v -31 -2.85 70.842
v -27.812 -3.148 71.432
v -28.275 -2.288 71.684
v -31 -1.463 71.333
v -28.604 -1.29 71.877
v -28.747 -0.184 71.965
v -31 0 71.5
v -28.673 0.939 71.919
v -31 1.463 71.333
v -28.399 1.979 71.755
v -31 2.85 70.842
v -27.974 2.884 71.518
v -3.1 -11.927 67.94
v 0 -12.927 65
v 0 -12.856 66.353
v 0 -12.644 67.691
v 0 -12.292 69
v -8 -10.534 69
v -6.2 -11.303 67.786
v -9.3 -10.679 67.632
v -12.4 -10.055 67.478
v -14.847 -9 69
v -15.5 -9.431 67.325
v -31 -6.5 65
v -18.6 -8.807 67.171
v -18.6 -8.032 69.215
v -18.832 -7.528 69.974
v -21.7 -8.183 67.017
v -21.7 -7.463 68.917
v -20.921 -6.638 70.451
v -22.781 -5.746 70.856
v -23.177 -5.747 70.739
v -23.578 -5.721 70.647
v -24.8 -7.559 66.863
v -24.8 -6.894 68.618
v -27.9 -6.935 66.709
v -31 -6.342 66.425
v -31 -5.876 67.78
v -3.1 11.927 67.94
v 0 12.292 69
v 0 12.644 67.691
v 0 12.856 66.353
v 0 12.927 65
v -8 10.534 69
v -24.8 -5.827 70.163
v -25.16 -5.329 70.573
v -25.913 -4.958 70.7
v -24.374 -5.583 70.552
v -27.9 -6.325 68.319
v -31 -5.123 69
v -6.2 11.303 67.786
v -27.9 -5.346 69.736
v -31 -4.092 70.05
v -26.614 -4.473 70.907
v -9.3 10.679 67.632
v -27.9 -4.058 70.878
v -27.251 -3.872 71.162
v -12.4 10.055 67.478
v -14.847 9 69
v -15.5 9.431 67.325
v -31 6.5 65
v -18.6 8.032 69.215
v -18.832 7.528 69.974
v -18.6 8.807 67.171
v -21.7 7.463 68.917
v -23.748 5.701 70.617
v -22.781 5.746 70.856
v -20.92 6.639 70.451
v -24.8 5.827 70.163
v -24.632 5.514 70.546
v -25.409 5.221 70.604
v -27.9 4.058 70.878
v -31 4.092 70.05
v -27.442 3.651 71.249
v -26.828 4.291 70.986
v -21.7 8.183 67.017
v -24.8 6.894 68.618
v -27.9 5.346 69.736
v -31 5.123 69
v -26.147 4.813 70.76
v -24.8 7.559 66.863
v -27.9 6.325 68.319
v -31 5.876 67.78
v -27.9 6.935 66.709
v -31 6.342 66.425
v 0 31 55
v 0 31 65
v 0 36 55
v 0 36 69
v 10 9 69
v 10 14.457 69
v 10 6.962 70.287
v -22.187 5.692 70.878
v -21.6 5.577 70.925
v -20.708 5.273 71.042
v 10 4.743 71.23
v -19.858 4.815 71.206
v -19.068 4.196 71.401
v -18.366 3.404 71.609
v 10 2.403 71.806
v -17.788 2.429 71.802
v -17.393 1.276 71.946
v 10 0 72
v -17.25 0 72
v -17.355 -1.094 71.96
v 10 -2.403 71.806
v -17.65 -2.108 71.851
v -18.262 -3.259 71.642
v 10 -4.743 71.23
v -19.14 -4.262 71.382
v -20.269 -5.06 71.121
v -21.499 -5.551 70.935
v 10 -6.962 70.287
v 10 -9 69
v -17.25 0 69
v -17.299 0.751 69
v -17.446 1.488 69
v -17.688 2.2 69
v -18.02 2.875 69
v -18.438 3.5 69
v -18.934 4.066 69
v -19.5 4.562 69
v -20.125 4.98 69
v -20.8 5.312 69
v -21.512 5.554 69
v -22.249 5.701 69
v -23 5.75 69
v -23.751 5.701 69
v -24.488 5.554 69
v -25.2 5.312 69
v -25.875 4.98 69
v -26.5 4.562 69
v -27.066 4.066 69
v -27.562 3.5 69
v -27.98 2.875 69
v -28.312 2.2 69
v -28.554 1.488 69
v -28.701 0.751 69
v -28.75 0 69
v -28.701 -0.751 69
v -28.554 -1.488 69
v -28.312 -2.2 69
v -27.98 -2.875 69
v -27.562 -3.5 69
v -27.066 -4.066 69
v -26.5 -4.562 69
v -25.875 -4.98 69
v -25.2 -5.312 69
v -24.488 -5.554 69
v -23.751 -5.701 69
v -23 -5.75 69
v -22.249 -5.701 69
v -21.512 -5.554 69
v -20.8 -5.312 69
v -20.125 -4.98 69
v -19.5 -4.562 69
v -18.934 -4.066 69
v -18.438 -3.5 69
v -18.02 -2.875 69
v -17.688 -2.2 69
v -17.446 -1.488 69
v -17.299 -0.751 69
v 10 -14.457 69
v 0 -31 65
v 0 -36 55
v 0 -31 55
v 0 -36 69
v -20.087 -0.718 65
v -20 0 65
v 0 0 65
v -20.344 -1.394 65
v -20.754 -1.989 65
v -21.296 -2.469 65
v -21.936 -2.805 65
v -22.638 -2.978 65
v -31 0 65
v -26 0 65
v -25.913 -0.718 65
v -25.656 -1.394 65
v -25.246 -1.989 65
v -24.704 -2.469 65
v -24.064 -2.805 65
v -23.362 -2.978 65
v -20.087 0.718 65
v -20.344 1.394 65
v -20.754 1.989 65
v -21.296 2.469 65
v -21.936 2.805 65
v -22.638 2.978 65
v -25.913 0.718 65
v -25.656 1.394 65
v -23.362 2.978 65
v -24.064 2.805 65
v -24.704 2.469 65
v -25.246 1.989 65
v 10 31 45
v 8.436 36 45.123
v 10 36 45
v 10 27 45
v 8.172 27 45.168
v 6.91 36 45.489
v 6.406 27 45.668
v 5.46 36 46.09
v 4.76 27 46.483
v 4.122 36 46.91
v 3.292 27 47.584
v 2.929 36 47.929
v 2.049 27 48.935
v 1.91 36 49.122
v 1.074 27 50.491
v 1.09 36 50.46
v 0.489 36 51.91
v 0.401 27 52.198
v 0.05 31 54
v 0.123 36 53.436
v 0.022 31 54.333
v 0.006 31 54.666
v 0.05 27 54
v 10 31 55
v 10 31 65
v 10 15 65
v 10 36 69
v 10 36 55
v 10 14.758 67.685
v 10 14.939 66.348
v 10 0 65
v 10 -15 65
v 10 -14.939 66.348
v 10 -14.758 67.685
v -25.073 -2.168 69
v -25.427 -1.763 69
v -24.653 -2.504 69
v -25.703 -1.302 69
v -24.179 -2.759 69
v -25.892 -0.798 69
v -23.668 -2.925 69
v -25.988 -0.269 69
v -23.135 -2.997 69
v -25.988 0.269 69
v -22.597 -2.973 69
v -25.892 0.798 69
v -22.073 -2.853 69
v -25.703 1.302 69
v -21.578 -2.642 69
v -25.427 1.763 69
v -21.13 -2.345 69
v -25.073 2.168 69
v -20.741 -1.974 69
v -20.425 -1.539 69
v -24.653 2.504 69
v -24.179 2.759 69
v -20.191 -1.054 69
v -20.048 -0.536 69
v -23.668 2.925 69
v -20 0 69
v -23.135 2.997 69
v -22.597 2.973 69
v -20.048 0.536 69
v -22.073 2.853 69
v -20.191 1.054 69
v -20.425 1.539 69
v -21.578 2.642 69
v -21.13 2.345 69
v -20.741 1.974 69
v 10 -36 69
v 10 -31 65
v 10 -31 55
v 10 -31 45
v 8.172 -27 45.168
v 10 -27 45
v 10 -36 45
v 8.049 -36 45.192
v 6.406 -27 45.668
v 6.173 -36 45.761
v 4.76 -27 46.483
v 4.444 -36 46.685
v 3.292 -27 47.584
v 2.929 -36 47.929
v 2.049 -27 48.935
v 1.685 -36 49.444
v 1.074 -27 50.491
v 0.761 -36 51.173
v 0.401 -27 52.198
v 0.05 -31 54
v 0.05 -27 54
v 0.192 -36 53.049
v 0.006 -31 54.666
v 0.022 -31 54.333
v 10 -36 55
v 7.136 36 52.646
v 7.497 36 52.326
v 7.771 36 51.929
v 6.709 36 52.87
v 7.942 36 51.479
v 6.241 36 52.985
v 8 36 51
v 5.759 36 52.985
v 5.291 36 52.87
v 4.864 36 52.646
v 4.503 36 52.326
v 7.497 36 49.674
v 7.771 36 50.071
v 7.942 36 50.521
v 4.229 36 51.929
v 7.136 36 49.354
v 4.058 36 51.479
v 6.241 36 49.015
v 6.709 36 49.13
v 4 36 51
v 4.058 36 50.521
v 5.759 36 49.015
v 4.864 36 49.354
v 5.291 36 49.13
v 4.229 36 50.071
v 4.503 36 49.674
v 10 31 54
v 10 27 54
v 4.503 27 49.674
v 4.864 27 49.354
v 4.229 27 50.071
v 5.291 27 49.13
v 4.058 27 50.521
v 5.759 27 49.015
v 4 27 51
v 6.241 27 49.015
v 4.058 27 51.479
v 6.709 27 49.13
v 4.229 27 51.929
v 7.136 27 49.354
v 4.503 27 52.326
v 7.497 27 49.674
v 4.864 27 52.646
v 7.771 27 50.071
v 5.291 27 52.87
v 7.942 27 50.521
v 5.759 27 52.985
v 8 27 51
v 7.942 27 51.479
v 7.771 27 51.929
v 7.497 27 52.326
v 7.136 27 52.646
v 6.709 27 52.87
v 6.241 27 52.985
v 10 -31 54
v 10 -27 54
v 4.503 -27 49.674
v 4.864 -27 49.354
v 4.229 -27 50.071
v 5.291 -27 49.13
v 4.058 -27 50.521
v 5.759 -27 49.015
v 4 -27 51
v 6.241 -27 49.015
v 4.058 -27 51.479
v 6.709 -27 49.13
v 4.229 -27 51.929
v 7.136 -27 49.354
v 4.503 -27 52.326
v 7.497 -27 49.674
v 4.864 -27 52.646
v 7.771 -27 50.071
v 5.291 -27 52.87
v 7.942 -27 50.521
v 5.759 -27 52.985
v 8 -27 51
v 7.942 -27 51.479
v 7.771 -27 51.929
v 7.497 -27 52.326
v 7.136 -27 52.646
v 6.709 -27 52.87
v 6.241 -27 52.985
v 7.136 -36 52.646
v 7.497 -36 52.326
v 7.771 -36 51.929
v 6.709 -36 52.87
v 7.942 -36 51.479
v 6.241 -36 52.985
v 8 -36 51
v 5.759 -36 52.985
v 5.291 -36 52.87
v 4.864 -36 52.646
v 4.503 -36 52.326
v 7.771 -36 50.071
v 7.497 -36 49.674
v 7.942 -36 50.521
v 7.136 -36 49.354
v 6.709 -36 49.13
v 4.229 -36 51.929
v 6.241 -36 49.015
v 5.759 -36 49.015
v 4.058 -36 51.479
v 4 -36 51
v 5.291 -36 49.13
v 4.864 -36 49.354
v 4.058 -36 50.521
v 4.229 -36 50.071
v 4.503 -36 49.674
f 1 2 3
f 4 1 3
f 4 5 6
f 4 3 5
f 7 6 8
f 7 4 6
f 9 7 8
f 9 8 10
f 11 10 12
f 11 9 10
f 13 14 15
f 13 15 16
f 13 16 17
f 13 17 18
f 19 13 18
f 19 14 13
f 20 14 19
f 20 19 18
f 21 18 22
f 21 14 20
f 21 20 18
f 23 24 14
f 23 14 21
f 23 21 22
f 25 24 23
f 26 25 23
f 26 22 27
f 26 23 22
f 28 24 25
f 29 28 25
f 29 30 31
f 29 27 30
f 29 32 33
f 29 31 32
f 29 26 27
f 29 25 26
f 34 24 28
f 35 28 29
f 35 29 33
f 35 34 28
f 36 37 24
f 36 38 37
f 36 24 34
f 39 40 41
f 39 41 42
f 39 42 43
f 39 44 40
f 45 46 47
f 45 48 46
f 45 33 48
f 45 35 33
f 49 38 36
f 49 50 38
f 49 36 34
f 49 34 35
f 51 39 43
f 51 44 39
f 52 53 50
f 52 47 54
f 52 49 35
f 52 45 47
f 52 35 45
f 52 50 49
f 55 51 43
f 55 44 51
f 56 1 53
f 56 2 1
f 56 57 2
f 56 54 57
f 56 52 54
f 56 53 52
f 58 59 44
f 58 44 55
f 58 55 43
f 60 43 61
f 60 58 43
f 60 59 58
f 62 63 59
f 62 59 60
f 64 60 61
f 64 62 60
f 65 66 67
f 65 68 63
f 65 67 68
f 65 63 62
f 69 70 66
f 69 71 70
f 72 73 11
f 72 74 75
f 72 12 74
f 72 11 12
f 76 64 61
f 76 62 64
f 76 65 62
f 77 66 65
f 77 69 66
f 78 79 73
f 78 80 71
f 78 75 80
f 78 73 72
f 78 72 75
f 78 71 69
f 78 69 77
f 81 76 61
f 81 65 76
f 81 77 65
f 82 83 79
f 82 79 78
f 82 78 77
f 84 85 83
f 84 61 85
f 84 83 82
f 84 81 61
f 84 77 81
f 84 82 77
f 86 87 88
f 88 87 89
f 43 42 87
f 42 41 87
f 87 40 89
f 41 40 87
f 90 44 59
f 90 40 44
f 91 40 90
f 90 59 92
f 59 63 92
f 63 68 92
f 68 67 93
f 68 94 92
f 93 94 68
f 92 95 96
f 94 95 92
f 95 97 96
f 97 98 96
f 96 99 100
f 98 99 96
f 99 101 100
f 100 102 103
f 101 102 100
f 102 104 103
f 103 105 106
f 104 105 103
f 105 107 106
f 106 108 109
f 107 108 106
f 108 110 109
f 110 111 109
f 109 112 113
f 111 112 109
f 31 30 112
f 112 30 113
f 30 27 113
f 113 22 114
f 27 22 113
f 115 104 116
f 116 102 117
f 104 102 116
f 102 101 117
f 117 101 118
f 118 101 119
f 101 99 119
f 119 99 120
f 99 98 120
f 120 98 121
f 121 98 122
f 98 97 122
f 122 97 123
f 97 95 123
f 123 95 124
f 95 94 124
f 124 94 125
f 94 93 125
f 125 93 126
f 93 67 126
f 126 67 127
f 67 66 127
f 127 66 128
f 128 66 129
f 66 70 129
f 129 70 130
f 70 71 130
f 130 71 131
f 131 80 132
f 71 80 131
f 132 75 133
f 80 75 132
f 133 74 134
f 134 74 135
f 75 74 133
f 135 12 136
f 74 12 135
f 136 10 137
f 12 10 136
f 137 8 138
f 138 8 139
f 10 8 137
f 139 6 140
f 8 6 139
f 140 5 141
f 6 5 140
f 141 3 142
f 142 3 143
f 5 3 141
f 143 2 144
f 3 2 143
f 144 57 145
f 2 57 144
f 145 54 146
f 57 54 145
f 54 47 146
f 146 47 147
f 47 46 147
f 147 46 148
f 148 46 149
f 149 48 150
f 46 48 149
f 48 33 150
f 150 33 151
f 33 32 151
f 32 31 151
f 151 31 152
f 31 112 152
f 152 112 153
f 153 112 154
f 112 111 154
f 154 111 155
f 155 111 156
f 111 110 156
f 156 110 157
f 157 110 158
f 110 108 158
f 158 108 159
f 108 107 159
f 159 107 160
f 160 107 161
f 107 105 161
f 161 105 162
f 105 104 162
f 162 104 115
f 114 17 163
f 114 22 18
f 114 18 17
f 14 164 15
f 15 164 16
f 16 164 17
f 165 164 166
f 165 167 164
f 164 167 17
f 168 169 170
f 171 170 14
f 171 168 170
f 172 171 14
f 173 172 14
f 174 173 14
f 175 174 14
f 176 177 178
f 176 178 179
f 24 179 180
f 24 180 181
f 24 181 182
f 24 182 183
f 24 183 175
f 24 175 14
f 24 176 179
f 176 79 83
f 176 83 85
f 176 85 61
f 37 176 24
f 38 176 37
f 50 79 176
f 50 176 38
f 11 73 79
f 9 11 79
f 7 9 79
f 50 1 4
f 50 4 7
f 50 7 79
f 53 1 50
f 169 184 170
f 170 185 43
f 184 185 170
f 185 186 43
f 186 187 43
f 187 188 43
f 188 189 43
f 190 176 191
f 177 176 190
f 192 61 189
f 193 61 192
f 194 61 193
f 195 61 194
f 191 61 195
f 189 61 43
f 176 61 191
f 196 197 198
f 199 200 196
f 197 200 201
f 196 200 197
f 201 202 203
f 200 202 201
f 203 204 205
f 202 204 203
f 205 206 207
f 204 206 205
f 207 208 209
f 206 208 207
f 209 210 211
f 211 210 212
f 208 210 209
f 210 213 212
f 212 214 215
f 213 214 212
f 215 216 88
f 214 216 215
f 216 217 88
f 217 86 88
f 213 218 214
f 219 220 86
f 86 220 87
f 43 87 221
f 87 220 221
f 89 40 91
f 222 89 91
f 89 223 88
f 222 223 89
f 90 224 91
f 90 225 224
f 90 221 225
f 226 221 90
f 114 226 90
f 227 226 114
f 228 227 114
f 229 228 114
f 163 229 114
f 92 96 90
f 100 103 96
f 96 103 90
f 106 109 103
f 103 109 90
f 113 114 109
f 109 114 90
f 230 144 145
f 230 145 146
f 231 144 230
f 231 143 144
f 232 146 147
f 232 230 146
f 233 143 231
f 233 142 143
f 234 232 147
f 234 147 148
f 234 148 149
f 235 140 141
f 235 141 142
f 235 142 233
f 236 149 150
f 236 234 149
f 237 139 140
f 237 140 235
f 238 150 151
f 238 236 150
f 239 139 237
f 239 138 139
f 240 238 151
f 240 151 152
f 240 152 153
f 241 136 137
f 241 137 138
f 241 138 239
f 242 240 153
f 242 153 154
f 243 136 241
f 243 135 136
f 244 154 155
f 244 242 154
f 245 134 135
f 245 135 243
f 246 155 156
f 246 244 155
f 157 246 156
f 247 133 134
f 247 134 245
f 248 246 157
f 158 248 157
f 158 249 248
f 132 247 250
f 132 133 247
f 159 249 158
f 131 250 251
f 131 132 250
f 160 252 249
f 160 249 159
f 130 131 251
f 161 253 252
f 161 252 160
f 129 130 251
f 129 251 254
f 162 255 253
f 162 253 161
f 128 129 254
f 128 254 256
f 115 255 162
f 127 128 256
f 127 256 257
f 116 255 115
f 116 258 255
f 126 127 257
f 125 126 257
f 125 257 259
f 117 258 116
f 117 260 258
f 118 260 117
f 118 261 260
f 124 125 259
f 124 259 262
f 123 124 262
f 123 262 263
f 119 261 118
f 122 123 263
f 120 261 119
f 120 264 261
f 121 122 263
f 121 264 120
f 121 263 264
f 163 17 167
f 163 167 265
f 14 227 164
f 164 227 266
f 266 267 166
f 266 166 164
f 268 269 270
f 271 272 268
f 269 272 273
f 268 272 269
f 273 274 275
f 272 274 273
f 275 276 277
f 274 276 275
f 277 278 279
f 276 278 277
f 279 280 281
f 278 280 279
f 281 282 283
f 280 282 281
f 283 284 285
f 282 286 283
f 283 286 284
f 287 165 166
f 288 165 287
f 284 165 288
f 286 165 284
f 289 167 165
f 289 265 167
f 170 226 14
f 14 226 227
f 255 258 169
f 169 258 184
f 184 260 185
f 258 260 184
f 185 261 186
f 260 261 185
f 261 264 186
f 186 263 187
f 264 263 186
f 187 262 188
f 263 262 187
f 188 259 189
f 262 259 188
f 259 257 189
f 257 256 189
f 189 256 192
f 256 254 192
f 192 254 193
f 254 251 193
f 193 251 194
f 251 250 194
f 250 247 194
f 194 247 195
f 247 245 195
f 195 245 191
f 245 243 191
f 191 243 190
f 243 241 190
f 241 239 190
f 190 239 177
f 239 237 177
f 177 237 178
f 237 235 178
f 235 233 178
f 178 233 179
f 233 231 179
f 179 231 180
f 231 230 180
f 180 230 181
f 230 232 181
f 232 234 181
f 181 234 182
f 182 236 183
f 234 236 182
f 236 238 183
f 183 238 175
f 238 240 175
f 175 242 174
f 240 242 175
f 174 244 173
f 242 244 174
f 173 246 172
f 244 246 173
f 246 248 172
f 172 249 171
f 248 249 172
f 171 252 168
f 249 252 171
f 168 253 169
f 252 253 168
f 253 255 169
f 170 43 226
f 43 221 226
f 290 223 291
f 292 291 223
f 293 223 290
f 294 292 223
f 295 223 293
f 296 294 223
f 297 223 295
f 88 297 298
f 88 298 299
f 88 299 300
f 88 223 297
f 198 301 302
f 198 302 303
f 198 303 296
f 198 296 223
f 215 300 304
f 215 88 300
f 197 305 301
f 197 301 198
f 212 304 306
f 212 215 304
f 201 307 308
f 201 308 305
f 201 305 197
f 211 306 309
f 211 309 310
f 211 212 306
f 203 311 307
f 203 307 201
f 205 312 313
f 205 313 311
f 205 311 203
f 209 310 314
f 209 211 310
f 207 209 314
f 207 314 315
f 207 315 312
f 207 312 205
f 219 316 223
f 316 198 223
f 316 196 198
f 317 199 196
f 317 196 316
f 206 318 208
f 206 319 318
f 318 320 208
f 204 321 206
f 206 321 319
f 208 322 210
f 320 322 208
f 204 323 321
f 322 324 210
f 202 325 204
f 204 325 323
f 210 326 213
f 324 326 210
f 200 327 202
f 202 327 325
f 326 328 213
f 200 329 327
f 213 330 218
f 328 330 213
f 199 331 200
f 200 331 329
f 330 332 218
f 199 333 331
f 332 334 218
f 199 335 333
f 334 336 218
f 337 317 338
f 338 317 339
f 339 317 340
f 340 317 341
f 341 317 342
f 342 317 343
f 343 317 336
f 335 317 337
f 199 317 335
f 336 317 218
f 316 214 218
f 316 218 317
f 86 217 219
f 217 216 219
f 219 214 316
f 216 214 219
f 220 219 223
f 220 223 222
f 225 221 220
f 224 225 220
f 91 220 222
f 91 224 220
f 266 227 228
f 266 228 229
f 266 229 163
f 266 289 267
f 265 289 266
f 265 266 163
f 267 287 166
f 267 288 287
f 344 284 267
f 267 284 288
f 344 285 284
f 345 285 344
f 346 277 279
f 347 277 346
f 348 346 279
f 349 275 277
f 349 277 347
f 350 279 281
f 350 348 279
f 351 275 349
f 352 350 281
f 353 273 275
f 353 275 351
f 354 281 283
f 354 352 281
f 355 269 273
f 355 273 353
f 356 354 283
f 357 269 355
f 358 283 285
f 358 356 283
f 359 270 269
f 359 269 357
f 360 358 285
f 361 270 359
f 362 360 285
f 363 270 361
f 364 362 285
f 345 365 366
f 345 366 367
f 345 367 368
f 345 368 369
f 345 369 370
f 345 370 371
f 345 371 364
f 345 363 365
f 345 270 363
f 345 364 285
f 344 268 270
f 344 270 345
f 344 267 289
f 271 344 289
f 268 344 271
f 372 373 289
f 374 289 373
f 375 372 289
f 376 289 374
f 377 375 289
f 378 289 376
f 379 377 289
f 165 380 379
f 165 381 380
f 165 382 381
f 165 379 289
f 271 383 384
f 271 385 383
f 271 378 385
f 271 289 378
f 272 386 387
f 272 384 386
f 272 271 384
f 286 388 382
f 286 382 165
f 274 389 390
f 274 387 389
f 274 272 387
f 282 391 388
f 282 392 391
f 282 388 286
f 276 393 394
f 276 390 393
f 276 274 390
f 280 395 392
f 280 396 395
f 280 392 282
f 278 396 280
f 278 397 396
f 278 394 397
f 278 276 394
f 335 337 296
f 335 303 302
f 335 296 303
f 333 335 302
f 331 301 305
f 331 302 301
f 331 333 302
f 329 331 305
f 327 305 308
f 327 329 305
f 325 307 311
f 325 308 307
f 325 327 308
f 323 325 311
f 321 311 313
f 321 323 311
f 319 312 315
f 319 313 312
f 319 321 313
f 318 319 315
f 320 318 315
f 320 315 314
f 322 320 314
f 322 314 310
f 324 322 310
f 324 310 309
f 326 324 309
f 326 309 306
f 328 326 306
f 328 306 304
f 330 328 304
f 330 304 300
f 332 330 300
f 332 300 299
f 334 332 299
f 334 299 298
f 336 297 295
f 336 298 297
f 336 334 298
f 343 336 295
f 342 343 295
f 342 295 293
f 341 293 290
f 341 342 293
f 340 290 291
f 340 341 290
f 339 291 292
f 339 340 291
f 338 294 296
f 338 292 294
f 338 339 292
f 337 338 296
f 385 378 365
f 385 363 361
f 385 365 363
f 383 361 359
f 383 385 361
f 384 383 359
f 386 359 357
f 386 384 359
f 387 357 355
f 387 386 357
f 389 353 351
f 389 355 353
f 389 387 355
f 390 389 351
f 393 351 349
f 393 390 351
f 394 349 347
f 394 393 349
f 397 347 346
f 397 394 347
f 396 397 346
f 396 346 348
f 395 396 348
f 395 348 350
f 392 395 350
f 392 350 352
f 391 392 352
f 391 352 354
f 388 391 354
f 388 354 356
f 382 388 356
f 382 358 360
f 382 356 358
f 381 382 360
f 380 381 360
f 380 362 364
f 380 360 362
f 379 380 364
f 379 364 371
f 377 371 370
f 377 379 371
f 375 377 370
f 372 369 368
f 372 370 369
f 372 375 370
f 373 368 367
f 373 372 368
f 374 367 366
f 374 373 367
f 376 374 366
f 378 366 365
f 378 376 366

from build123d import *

# Parameters (mm, degrees)
BOX004_W          = 42
BOX004_H          = 82
BOX004_DEPTH      = 14
CYLINDER017_W     = 10
CYLINDER017_H     = 87
CYLINDER017_ANGLE = 90
CYLINDER018_R     = 15
CYLINDER018_DEPTH = 42
CYLINDER014_R     = 5.75
CYLINDER014_DEPTH = 10
CYLINDER013_R     = 3
CYLINDER013_DEPTH = 10
CYLINDER016_R     = 2
CYLINDER016_DEPTH = 94
CONE_ANGLE        = 180
CYLINDER001_W     = 10
CYLINDER001_H     = 5
CYLINDER001_ANGLE = 90
BOX002_W          = 10
BOX002_H          = 54
BOX002_DEPTH      = 11
BOX001_W          = 10
BOX001_H          = 62
BOX001_DEPTH      = 11
BOX_W             = 10
BOX_H             = 72
BOX_DEPTH         = 24
CYLINDER_W        = 10
CYLINDER_H        = 5
CYLINDER_ANGLE    = 90


with BuildPart() as include:
    # Box004 → Box004 (new body)
    with BuildSketch(Plane(origin=(-31, -36, 55), x_dir=(1, 0, 0), z_dir=(0, 0, 1))):
        with Locations((21, 41)):
            Rectangle(BOX004_W, BOX004_H)
    extrude(amount=BOX004_DEPTH)


with BuildPart() as include001:
    # Cylinder017 → Cylinder017 (revolve)
    with BuildSketch(Plane(origin=(10, -40.75, 55), x_dir=(0, 0, -1), z_dir=(1, 0, 0))):
        with Locations((5, 43.5)):
            Rectangle(CYLINDER017_W, CYLINDER017_H)
    revolve(axis=Axis((10, -40.75, 55), (0, 1, 0)), revolution_arc=CYLINDER017_ANGLE)


with BuildPart() as include002:
    # Cylinder018 → Cylinder018 (new body)
    with BuildSketch(Plane(origin=(-31, 0, 57), x_dir=(0, 1, 0), z_dir=(1, 0, 0))):
        Circle(CYLINDER018_R)
    extrude(amount=CYLINDER018_DEPTH)

    # Fusion005: union include, include001
    add(include.part)
    add(include001.part)


with BuildPart() as antennain001:
    # Cylinder014 → Cylinder014 (new body)
    with BuildSketch(Plane(origin=(-23, 0, 69), x_dir=(1, 0, 0), z_dir=(0, 0, 1))):
        Circle(CYLINDER014_R)
    extrude(amount=CYLINDER014_DEPTH)


with BuildPart() as fusion003:
    # Cylinder013 → Cylinder013 (new body)
    with BuildSketch(Plane(origin=(-23, 0, 65), x_dir=(1, 0, 0), z_dir=(0, 0, 1))):
        Circle(CYLINDER013_R)
    extrude(amount=CYLINDER013_DEPTH)

    # Fusion003: union antennaIn001
    add(antennain001.part)


with BuildPart() as m3heastsetcut:
    # Cylinder016 → Cylinder016 (new body)
    with BuildSketch(Plane(origin=(6, -47.35, 51), x_dir=(1, 0, 0), z_dir=(0, 1, 0))):
        Circle(CYLINDER016_R)
    extrude(amount=CYLINDER016_DEPTH)


with BuildPart() as cone:
    # Cone → Cone (revolve)
    with BuildSketch(Plane(origin=(10, 0, 65), x_dir=(0, -1, 0), z_dir=(0, 0, -1))):
        Polygon((0, 0), (15, 0), (6.5, 41), (0, 41), align=None)
    revolve(axis=Axis((10, 0, 65), (-1, 0, 0)), revolution_arc=CONE_ANGLE)


with BuildPart() as cylinder001:
    # Cylinder001 → Cylinder001 (revolve)
    with BuildSketch(Plane(origin=(10, -31, 55), x_dir=(-1, 0, 0), z_dir=(0, 0, 1))):
        with Locations((5, 2.5)):
            Rectangle(CYLINDER001_W, CYLINDER001_H)
    revolve(axis=Axis((10, -31, 55), (0, -1, 0)), revolution_arc=CYLINDER001_ANGLE)


with BuildPart() as in001:
    # Box002 → Box002 (new body)
    with BuildSketch(Plane(origin=(0, -27, 45), x_dir=(1, 0, 0), z_dir=(0, 0, 1))):
        with Locations((5, 27)):
            Rectangle(BOX002_W, BOX002_H)
    extrude(amount=BOX002_DEPTH)


with BuildPart() as in002:
    # Box001 → Box001 (new body)
    with BuildSketch(Plane(origin=(0, -31, 54), x_dir=(1, 0, 0), z_dir=(0, 0, 1))):
        with Locations((5, 31)):
            Rectangle(BOX001_W, BOX001_H)
    extrude(amount=BOX001_DEPTH)

    # Fusion: union in001
    add(in001.part)


with BuildPart() as cut:
    # Box → Box (new body)
    with BuildSketch(Plane(origin=(0, -36, 45), x_dir=(1, 0, 0), z_dir=(0, 0, 1))):
        with Locations((5, 36)):
            Rectangle(BOX_W, BOX_H)
    extrude(amount=BOX_DEPTH)

    # Cut: cut in002
    add(in002.part, mode=Mode.SUBTRACT)


with BuildPart() as common:
    # Cylinder → Cylinder (revolve)
    with BuildSketch(Plane(origin=(10, 31, 55), x_dir=(0, 0, -1), z_dir=(1, 0, 0))):
        with Locations((5, 2.5)):
            Rectangle(CYLINDER_W, CYLINDER_H)
    revolve(axis=Axis((10, 31, 55), (0, 1, 0)), revolution_arc=CYLINDER_ANGLE)

    # Fusion001: union Cylinder001, Cut
    add(cylinder001.part)
    add(cut.part)

    # Fusion004: union Cone
    add(cone.part)

    # Cut001: cut m3HeastSetCut
    add(m3heastsetcut.part, mode=Mode.SUBTRACT)

    # Cut002: cut Fusion003
    add(fusion003.part, mode=Mode.SUBTRACT)

    # Common: intersect include002
    add(include002.part, mode=Mode.INTERSECT)


solid = common.part
